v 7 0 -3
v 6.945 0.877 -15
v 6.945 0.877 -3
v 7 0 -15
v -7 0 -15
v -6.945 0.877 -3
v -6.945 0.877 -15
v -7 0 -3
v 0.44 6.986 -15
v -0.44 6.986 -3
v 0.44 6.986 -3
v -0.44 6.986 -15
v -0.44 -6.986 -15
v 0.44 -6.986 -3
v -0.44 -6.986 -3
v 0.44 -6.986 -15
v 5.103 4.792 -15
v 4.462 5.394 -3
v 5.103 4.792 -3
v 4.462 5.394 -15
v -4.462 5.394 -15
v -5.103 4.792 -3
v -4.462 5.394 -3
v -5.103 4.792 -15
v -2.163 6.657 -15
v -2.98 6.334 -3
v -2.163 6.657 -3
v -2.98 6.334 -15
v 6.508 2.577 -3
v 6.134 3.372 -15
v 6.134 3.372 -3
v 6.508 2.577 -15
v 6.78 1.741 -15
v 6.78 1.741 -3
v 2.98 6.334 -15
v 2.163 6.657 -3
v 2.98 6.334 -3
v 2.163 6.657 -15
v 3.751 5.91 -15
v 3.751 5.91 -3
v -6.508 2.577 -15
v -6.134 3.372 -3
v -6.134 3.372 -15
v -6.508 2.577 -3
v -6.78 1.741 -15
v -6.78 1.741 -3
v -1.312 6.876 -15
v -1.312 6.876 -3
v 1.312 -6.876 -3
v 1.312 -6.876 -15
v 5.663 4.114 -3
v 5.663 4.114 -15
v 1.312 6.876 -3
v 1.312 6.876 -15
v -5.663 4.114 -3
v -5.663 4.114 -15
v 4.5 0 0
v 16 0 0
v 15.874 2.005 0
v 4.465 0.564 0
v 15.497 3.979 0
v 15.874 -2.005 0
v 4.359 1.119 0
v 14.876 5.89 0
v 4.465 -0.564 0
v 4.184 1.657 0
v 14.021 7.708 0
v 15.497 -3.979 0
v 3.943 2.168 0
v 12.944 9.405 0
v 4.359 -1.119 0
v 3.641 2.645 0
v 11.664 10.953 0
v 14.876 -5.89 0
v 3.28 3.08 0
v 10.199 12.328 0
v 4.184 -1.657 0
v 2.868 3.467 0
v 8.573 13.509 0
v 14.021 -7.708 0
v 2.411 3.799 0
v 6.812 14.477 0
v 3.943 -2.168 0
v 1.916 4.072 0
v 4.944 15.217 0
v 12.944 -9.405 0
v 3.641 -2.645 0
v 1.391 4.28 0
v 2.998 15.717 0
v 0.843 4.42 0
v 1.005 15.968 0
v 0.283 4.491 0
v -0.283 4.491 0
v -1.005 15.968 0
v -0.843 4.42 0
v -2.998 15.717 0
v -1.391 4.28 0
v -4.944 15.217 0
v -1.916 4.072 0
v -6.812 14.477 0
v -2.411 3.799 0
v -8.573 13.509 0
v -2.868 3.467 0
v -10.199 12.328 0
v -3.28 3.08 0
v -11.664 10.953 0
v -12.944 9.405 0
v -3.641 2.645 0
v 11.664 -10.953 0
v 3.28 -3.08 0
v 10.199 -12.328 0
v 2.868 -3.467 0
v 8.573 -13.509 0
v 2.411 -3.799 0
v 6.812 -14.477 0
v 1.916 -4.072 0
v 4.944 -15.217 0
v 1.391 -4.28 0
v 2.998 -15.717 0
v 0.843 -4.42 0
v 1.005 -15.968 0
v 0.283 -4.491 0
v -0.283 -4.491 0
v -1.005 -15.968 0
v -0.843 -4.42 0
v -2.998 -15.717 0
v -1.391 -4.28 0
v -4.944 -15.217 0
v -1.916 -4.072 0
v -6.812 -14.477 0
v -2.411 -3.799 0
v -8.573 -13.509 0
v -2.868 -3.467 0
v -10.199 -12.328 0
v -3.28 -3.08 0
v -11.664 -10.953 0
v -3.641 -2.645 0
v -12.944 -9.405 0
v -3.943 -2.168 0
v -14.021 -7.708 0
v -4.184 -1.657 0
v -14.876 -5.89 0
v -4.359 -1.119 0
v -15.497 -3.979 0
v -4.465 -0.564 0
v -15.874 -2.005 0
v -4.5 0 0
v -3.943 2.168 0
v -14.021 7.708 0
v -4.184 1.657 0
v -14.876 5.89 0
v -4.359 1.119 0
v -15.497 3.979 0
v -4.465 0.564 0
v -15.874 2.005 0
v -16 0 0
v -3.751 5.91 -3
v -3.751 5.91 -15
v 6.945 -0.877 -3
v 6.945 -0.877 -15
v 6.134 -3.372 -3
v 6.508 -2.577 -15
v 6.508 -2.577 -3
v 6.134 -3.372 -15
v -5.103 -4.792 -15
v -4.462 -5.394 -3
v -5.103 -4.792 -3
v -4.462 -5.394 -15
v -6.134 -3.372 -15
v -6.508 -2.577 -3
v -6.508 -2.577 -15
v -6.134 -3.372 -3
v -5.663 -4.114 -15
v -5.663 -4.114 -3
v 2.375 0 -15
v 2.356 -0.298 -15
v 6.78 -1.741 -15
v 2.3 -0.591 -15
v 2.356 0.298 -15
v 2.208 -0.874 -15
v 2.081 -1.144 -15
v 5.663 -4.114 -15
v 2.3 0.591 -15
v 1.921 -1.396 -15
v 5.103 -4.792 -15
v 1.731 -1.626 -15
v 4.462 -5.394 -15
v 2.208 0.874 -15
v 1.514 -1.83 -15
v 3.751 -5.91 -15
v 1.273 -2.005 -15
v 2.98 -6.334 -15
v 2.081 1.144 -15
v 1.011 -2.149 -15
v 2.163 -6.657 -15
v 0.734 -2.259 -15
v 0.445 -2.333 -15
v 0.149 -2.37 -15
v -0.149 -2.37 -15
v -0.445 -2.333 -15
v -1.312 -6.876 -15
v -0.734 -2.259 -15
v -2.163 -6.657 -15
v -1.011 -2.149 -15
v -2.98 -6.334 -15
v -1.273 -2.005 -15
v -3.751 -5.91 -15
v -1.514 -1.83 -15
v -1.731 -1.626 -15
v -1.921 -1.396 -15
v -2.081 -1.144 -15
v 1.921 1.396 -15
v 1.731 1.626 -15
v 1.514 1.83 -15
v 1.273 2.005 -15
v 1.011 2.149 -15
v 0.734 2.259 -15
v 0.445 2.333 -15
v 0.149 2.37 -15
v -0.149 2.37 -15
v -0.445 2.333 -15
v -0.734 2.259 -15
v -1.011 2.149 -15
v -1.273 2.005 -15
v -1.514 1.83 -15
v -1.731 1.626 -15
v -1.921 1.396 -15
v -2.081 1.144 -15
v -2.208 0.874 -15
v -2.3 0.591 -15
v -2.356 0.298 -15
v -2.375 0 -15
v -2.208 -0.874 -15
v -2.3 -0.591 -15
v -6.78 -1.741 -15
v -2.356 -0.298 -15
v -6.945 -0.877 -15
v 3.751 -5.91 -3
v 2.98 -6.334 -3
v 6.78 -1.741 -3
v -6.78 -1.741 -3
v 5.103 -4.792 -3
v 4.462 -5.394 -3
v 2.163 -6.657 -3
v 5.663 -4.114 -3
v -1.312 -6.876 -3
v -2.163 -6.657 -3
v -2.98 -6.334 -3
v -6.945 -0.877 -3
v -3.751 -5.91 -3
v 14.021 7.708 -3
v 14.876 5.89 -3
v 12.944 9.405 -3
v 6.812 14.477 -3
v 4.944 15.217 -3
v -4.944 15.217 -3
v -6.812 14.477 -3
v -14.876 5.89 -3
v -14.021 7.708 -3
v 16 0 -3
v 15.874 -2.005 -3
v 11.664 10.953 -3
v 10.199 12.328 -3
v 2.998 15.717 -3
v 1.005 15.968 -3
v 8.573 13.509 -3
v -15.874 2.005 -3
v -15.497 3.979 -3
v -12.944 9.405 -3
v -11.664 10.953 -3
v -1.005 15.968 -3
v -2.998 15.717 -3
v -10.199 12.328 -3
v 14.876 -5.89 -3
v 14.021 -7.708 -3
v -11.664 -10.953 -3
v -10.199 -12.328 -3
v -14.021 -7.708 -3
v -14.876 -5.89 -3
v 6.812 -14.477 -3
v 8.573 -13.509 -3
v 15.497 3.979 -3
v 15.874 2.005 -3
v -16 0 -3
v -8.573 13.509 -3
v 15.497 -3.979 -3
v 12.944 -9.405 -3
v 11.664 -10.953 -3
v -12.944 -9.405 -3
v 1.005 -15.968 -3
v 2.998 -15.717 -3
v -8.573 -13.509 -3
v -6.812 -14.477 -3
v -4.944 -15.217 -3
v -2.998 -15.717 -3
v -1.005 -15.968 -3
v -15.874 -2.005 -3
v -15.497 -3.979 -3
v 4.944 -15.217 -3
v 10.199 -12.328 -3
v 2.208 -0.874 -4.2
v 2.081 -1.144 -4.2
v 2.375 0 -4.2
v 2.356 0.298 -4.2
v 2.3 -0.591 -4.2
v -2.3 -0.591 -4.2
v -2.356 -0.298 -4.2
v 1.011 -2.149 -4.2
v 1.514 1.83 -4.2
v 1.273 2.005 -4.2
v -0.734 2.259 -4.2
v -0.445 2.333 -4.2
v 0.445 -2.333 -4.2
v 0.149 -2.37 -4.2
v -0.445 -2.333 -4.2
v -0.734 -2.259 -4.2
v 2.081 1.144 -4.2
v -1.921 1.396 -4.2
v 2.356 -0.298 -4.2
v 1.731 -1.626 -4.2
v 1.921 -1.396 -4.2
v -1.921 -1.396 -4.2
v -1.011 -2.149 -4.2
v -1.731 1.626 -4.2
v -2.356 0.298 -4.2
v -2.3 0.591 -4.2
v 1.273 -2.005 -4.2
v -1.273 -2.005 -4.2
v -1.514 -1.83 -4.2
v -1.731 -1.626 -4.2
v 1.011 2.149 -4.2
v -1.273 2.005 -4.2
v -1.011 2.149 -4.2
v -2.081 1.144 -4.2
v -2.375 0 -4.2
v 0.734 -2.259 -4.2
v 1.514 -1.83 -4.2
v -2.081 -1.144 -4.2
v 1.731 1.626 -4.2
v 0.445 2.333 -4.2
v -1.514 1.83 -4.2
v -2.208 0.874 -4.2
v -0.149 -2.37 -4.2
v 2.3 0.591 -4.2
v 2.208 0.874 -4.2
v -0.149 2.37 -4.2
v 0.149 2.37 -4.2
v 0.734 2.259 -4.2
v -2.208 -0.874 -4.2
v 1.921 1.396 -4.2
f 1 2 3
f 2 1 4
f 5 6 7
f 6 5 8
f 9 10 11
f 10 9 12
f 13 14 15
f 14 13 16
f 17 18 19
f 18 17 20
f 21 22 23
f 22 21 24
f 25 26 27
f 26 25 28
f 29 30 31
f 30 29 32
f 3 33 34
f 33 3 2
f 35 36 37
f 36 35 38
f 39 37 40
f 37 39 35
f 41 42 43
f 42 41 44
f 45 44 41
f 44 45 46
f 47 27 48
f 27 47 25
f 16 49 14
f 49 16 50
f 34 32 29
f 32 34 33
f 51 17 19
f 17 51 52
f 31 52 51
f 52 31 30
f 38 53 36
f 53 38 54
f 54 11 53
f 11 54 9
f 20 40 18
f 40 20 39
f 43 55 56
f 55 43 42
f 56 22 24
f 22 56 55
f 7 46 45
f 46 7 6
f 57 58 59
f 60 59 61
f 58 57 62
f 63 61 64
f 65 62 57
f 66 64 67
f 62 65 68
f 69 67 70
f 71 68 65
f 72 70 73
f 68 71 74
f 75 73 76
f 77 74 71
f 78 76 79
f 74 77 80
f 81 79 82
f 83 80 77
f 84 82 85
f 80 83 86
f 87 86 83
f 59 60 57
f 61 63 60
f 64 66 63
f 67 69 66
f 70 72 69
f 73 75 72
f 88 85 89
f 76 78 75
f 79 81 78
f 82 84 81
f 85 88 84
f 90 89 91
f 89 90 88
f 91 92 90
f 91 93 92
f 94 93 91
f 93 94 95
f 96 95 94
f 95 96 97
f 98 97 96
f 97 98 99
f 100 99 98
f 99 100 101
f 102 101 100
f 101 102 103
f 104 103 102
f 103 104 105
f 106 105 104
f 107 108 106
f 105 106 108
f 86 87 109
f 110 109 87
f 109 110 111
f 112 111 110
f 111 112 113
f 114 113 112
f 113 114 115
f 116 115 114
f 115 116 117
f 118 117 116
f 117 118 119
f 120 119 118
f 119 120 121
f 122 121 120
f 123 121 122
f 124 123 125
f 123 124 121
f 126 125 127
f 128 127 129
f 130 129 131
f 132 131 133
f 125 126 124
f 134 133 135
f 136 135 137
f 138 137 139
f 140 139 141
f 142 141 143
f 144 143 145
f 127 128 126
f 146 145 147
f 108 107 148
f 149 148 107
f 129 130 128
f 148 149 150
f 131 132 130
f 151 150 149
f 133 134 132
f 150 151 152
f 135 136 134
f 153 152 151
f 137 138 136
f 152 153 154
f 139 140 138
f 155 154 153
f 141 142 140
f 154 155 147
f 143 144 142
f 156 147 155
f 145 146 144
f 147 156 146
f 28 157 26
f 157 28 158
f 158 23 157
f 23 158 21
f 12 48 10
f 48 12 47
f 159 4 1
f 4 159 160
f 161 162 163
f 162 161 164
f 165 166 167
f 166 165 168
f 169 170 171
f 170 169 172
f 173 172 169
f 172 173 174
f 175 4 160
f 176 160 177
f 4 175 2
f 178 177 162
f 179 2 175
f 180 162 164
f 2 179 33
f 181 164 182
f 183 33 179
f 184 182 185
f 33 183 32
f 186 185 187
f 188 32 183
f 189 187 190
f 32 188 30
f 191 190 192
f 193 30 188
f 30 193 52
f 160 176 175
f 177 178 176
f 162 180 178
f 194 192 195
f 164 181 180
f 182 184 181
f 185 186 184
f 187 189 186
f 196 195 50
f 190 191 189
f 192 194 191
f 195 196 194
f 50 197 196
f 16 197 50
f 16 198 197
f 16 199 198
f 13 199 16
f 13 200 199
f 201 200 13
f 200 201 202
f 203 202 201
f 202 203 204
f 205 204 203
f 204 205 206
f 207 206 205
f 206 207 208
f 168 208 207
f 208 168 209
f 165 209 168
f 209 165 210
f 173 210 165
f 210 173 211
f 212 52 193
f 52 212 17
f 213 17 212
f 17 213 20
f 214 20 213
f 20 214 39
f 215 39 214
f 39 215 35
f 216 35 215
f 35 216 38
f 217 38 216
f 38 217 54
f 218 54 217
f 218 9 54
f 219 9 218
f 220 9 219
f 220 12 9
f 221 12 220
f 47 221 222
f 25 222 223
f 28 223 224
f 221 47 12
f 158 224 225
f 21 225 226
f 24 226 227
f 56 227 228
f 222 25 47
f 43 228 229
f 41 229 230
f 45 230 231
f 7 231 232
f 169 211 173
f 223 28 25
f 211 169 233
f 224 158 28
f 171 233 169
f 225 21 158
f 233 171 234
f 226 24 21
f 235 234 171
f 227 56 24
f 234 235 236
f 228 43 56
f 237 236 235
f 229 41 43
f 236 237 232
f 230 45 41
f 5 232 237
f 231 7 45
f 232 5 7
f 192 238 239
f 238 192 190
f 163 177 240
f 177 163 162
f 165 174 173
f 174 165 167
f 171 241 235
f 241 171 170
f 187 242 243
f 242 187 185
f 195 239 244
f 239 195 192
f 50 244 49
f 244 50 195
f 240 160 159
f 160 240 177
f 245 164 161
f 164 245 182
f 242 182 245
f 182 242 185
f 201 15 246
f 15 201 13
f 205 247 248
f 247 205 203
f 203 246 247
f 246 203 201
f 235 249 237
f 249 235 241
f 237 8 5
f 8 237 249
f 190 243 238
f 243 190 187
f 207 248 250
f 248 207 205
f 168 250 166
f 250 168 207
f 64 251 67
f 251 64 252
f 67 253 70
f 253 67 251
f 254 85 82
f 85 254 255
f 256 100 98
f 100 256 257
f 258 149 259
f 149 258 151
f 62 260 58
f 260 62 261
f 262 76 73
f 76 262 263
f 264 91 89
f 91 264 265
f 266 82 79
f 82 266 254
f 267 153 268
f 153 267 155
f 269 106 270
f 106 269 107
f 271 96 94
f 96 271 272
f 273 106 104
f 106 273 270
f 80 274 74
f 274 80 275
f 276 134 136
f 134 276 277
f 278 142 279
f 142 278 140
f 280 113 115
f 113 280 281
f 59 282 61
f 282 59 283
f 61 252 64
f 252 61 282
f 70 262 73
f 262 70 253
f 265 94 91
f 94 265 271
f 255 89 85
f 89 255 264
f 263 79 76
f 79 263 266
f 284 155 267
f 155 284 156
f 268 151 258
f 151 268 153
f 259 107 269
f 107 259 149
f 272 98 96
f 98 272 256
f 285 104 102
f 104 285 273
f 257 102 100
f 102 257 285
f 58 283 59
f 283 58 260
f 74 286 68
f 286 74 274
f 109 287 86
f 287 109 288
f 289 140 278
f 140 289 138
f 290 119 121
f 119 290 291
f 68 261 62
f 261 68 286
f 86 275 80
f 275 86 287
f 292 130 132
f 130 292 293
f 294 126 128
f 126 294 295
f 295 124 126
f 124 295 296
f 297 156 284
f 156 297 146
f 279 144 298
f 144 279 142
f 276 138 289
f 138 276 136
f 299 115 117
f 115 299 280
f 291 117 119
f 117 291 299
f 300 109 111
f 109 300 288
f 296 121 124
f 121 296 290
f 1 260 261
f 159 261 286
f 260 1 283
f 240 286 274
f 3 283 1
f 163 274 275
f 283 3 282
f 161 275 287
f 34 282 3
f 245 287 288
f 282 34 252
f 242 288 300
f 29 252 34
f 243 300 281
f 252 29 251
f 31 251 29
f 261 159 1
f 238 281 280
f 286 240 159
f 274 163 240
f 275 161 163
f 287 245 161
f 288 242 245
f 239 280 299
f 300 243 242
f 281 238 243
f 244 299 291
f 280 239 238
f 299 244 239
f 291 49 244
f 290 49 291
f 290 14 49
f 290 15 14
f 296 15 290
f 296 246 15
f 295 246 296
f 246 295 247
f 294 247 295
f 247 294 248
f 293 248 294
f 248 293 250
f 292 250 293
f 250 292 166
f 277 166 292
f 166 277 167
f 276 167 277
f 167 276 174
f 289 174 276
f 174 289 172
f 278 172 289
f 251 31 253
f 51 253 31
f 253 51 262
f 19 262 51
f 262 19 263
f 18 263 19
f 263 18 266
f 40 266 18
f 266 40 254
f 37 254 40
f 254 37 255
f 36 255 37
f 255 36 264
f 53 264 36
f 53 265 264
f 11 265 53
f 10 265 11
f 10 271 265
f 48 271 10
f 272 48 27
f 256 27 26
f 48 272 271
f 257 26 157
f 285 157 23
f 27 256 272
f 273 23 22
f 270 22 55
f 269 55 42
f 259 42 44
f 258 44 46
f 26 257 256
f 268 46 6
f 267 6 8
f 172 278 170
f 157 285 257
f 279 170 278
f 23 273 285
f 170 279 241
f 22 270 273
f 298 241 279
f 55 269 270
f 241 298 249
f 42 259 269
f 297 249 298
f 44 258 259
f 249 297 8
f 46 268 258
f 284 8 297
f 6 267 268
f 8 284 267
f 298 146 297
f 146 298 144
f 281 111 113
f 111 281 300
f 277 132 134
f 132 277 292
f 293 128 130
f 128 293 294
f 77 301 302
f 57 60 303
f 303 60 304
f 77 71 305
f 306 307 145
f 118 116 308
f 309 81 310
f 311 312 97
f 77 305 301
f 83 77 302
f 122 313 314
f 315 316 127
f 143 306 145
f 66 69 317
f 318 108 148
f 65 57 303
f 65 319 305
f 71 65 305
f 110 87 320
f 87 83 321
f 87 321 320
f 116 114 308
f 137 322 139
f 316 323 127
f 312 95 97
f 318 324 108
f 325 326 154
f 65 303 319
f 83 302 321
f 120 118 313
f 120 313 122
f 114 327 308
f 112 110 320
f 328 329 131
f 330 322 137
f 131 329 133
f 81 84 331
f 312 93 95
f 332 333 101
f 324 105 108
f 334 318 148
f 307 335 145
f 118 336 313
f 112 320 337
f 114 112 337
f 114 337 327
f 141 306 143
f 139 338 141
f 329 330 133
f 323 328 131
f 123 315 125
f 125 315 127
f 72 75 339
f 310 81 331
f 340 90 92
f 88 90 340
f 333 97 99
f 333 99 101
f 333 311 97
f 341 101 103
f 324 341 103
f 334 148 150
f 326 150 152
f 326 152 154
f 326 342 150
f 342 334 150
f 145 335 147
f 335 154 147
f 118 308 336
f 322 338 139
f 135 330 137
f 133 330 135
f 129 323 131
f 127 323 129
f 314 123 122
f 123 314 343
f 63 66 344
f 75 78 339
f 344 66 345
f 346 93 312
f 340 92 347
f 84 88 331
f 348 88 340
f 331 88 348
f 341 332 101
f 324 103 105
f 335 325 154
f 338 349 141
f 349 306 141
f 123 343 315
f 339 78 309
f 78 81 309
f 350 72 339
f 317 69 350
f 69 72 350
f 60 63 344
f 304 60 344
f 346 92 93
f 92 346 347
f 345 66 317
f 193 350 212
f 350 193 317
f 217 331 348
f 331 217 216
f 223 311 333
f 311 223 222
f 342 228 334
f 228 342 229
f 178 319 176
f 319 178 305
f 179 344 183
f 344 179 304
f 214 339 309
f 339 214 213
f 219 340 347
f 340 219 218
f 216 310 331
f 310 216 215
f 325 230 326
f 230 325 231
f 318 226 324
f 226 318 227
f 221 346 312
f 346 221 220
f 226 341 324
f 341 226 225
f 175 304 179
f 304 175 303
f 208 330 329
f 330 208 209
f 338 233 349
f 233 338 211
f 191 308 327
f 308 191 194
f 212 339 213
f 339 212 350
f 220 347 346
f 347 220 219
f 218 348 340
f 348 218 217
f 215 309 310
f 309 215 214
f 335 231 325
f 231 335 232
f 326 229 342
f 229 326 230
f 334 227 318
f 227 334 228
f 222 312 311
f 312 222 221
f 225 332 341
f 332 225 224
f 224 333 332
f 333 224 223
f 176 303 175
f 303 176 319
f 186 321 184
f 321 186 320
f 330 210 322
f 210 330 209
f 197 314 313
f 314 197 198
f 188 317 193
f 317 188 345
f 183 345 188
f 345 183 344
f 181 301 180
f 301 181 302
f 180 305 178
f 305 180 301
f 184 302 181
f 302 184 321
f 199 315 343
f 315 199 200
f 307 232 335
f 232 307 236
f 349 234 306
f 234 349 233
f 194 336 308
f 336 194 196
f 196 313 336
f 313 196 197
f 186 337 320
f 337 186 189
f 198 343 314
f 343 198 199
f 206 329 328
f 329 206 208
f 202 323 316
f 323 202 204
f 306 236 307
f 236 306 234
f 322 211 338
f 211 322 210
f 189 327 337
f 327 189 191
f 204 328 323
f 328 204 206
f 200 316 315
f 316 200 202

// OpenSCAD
$fn = 50;


difference() {
	union() {
		translate(v = [0, 0, -15.0000000000]) {
			cylinder(h = 15, r = 7.0000000000);
		}
		translate(v = [0, 0, -3.0000000000]) {
			cylinder(h = 3, r = 16.0000000000);
		}
	}
	union() {
		translate(v = [0, 0, 0]) {
			rotate(a = [0, 0, 0]) {
				difference() {
					union() {
						#translate(v = [0, 0, -15.0000000000]) {
							cylinder(h = 15, r = 2.2500000000);
						}
						#translate(v = [0, 0, -4.2000000000]) {
							cylinder(h = 4.2000000000, r1 = 2.3750000000, r2 = 4.5000000000);
						}
						#translate(v = [0, 0, -15.0000000000]) {
							cylinder(h = 15, r = 2.3750000000);
						}
						#translate(v = [0, 0, -15.0000000000]) {
							cylinder(h = 15, r = 2.2500000000);
						}
					}
					union();
				}
			}
		}
	}
}
